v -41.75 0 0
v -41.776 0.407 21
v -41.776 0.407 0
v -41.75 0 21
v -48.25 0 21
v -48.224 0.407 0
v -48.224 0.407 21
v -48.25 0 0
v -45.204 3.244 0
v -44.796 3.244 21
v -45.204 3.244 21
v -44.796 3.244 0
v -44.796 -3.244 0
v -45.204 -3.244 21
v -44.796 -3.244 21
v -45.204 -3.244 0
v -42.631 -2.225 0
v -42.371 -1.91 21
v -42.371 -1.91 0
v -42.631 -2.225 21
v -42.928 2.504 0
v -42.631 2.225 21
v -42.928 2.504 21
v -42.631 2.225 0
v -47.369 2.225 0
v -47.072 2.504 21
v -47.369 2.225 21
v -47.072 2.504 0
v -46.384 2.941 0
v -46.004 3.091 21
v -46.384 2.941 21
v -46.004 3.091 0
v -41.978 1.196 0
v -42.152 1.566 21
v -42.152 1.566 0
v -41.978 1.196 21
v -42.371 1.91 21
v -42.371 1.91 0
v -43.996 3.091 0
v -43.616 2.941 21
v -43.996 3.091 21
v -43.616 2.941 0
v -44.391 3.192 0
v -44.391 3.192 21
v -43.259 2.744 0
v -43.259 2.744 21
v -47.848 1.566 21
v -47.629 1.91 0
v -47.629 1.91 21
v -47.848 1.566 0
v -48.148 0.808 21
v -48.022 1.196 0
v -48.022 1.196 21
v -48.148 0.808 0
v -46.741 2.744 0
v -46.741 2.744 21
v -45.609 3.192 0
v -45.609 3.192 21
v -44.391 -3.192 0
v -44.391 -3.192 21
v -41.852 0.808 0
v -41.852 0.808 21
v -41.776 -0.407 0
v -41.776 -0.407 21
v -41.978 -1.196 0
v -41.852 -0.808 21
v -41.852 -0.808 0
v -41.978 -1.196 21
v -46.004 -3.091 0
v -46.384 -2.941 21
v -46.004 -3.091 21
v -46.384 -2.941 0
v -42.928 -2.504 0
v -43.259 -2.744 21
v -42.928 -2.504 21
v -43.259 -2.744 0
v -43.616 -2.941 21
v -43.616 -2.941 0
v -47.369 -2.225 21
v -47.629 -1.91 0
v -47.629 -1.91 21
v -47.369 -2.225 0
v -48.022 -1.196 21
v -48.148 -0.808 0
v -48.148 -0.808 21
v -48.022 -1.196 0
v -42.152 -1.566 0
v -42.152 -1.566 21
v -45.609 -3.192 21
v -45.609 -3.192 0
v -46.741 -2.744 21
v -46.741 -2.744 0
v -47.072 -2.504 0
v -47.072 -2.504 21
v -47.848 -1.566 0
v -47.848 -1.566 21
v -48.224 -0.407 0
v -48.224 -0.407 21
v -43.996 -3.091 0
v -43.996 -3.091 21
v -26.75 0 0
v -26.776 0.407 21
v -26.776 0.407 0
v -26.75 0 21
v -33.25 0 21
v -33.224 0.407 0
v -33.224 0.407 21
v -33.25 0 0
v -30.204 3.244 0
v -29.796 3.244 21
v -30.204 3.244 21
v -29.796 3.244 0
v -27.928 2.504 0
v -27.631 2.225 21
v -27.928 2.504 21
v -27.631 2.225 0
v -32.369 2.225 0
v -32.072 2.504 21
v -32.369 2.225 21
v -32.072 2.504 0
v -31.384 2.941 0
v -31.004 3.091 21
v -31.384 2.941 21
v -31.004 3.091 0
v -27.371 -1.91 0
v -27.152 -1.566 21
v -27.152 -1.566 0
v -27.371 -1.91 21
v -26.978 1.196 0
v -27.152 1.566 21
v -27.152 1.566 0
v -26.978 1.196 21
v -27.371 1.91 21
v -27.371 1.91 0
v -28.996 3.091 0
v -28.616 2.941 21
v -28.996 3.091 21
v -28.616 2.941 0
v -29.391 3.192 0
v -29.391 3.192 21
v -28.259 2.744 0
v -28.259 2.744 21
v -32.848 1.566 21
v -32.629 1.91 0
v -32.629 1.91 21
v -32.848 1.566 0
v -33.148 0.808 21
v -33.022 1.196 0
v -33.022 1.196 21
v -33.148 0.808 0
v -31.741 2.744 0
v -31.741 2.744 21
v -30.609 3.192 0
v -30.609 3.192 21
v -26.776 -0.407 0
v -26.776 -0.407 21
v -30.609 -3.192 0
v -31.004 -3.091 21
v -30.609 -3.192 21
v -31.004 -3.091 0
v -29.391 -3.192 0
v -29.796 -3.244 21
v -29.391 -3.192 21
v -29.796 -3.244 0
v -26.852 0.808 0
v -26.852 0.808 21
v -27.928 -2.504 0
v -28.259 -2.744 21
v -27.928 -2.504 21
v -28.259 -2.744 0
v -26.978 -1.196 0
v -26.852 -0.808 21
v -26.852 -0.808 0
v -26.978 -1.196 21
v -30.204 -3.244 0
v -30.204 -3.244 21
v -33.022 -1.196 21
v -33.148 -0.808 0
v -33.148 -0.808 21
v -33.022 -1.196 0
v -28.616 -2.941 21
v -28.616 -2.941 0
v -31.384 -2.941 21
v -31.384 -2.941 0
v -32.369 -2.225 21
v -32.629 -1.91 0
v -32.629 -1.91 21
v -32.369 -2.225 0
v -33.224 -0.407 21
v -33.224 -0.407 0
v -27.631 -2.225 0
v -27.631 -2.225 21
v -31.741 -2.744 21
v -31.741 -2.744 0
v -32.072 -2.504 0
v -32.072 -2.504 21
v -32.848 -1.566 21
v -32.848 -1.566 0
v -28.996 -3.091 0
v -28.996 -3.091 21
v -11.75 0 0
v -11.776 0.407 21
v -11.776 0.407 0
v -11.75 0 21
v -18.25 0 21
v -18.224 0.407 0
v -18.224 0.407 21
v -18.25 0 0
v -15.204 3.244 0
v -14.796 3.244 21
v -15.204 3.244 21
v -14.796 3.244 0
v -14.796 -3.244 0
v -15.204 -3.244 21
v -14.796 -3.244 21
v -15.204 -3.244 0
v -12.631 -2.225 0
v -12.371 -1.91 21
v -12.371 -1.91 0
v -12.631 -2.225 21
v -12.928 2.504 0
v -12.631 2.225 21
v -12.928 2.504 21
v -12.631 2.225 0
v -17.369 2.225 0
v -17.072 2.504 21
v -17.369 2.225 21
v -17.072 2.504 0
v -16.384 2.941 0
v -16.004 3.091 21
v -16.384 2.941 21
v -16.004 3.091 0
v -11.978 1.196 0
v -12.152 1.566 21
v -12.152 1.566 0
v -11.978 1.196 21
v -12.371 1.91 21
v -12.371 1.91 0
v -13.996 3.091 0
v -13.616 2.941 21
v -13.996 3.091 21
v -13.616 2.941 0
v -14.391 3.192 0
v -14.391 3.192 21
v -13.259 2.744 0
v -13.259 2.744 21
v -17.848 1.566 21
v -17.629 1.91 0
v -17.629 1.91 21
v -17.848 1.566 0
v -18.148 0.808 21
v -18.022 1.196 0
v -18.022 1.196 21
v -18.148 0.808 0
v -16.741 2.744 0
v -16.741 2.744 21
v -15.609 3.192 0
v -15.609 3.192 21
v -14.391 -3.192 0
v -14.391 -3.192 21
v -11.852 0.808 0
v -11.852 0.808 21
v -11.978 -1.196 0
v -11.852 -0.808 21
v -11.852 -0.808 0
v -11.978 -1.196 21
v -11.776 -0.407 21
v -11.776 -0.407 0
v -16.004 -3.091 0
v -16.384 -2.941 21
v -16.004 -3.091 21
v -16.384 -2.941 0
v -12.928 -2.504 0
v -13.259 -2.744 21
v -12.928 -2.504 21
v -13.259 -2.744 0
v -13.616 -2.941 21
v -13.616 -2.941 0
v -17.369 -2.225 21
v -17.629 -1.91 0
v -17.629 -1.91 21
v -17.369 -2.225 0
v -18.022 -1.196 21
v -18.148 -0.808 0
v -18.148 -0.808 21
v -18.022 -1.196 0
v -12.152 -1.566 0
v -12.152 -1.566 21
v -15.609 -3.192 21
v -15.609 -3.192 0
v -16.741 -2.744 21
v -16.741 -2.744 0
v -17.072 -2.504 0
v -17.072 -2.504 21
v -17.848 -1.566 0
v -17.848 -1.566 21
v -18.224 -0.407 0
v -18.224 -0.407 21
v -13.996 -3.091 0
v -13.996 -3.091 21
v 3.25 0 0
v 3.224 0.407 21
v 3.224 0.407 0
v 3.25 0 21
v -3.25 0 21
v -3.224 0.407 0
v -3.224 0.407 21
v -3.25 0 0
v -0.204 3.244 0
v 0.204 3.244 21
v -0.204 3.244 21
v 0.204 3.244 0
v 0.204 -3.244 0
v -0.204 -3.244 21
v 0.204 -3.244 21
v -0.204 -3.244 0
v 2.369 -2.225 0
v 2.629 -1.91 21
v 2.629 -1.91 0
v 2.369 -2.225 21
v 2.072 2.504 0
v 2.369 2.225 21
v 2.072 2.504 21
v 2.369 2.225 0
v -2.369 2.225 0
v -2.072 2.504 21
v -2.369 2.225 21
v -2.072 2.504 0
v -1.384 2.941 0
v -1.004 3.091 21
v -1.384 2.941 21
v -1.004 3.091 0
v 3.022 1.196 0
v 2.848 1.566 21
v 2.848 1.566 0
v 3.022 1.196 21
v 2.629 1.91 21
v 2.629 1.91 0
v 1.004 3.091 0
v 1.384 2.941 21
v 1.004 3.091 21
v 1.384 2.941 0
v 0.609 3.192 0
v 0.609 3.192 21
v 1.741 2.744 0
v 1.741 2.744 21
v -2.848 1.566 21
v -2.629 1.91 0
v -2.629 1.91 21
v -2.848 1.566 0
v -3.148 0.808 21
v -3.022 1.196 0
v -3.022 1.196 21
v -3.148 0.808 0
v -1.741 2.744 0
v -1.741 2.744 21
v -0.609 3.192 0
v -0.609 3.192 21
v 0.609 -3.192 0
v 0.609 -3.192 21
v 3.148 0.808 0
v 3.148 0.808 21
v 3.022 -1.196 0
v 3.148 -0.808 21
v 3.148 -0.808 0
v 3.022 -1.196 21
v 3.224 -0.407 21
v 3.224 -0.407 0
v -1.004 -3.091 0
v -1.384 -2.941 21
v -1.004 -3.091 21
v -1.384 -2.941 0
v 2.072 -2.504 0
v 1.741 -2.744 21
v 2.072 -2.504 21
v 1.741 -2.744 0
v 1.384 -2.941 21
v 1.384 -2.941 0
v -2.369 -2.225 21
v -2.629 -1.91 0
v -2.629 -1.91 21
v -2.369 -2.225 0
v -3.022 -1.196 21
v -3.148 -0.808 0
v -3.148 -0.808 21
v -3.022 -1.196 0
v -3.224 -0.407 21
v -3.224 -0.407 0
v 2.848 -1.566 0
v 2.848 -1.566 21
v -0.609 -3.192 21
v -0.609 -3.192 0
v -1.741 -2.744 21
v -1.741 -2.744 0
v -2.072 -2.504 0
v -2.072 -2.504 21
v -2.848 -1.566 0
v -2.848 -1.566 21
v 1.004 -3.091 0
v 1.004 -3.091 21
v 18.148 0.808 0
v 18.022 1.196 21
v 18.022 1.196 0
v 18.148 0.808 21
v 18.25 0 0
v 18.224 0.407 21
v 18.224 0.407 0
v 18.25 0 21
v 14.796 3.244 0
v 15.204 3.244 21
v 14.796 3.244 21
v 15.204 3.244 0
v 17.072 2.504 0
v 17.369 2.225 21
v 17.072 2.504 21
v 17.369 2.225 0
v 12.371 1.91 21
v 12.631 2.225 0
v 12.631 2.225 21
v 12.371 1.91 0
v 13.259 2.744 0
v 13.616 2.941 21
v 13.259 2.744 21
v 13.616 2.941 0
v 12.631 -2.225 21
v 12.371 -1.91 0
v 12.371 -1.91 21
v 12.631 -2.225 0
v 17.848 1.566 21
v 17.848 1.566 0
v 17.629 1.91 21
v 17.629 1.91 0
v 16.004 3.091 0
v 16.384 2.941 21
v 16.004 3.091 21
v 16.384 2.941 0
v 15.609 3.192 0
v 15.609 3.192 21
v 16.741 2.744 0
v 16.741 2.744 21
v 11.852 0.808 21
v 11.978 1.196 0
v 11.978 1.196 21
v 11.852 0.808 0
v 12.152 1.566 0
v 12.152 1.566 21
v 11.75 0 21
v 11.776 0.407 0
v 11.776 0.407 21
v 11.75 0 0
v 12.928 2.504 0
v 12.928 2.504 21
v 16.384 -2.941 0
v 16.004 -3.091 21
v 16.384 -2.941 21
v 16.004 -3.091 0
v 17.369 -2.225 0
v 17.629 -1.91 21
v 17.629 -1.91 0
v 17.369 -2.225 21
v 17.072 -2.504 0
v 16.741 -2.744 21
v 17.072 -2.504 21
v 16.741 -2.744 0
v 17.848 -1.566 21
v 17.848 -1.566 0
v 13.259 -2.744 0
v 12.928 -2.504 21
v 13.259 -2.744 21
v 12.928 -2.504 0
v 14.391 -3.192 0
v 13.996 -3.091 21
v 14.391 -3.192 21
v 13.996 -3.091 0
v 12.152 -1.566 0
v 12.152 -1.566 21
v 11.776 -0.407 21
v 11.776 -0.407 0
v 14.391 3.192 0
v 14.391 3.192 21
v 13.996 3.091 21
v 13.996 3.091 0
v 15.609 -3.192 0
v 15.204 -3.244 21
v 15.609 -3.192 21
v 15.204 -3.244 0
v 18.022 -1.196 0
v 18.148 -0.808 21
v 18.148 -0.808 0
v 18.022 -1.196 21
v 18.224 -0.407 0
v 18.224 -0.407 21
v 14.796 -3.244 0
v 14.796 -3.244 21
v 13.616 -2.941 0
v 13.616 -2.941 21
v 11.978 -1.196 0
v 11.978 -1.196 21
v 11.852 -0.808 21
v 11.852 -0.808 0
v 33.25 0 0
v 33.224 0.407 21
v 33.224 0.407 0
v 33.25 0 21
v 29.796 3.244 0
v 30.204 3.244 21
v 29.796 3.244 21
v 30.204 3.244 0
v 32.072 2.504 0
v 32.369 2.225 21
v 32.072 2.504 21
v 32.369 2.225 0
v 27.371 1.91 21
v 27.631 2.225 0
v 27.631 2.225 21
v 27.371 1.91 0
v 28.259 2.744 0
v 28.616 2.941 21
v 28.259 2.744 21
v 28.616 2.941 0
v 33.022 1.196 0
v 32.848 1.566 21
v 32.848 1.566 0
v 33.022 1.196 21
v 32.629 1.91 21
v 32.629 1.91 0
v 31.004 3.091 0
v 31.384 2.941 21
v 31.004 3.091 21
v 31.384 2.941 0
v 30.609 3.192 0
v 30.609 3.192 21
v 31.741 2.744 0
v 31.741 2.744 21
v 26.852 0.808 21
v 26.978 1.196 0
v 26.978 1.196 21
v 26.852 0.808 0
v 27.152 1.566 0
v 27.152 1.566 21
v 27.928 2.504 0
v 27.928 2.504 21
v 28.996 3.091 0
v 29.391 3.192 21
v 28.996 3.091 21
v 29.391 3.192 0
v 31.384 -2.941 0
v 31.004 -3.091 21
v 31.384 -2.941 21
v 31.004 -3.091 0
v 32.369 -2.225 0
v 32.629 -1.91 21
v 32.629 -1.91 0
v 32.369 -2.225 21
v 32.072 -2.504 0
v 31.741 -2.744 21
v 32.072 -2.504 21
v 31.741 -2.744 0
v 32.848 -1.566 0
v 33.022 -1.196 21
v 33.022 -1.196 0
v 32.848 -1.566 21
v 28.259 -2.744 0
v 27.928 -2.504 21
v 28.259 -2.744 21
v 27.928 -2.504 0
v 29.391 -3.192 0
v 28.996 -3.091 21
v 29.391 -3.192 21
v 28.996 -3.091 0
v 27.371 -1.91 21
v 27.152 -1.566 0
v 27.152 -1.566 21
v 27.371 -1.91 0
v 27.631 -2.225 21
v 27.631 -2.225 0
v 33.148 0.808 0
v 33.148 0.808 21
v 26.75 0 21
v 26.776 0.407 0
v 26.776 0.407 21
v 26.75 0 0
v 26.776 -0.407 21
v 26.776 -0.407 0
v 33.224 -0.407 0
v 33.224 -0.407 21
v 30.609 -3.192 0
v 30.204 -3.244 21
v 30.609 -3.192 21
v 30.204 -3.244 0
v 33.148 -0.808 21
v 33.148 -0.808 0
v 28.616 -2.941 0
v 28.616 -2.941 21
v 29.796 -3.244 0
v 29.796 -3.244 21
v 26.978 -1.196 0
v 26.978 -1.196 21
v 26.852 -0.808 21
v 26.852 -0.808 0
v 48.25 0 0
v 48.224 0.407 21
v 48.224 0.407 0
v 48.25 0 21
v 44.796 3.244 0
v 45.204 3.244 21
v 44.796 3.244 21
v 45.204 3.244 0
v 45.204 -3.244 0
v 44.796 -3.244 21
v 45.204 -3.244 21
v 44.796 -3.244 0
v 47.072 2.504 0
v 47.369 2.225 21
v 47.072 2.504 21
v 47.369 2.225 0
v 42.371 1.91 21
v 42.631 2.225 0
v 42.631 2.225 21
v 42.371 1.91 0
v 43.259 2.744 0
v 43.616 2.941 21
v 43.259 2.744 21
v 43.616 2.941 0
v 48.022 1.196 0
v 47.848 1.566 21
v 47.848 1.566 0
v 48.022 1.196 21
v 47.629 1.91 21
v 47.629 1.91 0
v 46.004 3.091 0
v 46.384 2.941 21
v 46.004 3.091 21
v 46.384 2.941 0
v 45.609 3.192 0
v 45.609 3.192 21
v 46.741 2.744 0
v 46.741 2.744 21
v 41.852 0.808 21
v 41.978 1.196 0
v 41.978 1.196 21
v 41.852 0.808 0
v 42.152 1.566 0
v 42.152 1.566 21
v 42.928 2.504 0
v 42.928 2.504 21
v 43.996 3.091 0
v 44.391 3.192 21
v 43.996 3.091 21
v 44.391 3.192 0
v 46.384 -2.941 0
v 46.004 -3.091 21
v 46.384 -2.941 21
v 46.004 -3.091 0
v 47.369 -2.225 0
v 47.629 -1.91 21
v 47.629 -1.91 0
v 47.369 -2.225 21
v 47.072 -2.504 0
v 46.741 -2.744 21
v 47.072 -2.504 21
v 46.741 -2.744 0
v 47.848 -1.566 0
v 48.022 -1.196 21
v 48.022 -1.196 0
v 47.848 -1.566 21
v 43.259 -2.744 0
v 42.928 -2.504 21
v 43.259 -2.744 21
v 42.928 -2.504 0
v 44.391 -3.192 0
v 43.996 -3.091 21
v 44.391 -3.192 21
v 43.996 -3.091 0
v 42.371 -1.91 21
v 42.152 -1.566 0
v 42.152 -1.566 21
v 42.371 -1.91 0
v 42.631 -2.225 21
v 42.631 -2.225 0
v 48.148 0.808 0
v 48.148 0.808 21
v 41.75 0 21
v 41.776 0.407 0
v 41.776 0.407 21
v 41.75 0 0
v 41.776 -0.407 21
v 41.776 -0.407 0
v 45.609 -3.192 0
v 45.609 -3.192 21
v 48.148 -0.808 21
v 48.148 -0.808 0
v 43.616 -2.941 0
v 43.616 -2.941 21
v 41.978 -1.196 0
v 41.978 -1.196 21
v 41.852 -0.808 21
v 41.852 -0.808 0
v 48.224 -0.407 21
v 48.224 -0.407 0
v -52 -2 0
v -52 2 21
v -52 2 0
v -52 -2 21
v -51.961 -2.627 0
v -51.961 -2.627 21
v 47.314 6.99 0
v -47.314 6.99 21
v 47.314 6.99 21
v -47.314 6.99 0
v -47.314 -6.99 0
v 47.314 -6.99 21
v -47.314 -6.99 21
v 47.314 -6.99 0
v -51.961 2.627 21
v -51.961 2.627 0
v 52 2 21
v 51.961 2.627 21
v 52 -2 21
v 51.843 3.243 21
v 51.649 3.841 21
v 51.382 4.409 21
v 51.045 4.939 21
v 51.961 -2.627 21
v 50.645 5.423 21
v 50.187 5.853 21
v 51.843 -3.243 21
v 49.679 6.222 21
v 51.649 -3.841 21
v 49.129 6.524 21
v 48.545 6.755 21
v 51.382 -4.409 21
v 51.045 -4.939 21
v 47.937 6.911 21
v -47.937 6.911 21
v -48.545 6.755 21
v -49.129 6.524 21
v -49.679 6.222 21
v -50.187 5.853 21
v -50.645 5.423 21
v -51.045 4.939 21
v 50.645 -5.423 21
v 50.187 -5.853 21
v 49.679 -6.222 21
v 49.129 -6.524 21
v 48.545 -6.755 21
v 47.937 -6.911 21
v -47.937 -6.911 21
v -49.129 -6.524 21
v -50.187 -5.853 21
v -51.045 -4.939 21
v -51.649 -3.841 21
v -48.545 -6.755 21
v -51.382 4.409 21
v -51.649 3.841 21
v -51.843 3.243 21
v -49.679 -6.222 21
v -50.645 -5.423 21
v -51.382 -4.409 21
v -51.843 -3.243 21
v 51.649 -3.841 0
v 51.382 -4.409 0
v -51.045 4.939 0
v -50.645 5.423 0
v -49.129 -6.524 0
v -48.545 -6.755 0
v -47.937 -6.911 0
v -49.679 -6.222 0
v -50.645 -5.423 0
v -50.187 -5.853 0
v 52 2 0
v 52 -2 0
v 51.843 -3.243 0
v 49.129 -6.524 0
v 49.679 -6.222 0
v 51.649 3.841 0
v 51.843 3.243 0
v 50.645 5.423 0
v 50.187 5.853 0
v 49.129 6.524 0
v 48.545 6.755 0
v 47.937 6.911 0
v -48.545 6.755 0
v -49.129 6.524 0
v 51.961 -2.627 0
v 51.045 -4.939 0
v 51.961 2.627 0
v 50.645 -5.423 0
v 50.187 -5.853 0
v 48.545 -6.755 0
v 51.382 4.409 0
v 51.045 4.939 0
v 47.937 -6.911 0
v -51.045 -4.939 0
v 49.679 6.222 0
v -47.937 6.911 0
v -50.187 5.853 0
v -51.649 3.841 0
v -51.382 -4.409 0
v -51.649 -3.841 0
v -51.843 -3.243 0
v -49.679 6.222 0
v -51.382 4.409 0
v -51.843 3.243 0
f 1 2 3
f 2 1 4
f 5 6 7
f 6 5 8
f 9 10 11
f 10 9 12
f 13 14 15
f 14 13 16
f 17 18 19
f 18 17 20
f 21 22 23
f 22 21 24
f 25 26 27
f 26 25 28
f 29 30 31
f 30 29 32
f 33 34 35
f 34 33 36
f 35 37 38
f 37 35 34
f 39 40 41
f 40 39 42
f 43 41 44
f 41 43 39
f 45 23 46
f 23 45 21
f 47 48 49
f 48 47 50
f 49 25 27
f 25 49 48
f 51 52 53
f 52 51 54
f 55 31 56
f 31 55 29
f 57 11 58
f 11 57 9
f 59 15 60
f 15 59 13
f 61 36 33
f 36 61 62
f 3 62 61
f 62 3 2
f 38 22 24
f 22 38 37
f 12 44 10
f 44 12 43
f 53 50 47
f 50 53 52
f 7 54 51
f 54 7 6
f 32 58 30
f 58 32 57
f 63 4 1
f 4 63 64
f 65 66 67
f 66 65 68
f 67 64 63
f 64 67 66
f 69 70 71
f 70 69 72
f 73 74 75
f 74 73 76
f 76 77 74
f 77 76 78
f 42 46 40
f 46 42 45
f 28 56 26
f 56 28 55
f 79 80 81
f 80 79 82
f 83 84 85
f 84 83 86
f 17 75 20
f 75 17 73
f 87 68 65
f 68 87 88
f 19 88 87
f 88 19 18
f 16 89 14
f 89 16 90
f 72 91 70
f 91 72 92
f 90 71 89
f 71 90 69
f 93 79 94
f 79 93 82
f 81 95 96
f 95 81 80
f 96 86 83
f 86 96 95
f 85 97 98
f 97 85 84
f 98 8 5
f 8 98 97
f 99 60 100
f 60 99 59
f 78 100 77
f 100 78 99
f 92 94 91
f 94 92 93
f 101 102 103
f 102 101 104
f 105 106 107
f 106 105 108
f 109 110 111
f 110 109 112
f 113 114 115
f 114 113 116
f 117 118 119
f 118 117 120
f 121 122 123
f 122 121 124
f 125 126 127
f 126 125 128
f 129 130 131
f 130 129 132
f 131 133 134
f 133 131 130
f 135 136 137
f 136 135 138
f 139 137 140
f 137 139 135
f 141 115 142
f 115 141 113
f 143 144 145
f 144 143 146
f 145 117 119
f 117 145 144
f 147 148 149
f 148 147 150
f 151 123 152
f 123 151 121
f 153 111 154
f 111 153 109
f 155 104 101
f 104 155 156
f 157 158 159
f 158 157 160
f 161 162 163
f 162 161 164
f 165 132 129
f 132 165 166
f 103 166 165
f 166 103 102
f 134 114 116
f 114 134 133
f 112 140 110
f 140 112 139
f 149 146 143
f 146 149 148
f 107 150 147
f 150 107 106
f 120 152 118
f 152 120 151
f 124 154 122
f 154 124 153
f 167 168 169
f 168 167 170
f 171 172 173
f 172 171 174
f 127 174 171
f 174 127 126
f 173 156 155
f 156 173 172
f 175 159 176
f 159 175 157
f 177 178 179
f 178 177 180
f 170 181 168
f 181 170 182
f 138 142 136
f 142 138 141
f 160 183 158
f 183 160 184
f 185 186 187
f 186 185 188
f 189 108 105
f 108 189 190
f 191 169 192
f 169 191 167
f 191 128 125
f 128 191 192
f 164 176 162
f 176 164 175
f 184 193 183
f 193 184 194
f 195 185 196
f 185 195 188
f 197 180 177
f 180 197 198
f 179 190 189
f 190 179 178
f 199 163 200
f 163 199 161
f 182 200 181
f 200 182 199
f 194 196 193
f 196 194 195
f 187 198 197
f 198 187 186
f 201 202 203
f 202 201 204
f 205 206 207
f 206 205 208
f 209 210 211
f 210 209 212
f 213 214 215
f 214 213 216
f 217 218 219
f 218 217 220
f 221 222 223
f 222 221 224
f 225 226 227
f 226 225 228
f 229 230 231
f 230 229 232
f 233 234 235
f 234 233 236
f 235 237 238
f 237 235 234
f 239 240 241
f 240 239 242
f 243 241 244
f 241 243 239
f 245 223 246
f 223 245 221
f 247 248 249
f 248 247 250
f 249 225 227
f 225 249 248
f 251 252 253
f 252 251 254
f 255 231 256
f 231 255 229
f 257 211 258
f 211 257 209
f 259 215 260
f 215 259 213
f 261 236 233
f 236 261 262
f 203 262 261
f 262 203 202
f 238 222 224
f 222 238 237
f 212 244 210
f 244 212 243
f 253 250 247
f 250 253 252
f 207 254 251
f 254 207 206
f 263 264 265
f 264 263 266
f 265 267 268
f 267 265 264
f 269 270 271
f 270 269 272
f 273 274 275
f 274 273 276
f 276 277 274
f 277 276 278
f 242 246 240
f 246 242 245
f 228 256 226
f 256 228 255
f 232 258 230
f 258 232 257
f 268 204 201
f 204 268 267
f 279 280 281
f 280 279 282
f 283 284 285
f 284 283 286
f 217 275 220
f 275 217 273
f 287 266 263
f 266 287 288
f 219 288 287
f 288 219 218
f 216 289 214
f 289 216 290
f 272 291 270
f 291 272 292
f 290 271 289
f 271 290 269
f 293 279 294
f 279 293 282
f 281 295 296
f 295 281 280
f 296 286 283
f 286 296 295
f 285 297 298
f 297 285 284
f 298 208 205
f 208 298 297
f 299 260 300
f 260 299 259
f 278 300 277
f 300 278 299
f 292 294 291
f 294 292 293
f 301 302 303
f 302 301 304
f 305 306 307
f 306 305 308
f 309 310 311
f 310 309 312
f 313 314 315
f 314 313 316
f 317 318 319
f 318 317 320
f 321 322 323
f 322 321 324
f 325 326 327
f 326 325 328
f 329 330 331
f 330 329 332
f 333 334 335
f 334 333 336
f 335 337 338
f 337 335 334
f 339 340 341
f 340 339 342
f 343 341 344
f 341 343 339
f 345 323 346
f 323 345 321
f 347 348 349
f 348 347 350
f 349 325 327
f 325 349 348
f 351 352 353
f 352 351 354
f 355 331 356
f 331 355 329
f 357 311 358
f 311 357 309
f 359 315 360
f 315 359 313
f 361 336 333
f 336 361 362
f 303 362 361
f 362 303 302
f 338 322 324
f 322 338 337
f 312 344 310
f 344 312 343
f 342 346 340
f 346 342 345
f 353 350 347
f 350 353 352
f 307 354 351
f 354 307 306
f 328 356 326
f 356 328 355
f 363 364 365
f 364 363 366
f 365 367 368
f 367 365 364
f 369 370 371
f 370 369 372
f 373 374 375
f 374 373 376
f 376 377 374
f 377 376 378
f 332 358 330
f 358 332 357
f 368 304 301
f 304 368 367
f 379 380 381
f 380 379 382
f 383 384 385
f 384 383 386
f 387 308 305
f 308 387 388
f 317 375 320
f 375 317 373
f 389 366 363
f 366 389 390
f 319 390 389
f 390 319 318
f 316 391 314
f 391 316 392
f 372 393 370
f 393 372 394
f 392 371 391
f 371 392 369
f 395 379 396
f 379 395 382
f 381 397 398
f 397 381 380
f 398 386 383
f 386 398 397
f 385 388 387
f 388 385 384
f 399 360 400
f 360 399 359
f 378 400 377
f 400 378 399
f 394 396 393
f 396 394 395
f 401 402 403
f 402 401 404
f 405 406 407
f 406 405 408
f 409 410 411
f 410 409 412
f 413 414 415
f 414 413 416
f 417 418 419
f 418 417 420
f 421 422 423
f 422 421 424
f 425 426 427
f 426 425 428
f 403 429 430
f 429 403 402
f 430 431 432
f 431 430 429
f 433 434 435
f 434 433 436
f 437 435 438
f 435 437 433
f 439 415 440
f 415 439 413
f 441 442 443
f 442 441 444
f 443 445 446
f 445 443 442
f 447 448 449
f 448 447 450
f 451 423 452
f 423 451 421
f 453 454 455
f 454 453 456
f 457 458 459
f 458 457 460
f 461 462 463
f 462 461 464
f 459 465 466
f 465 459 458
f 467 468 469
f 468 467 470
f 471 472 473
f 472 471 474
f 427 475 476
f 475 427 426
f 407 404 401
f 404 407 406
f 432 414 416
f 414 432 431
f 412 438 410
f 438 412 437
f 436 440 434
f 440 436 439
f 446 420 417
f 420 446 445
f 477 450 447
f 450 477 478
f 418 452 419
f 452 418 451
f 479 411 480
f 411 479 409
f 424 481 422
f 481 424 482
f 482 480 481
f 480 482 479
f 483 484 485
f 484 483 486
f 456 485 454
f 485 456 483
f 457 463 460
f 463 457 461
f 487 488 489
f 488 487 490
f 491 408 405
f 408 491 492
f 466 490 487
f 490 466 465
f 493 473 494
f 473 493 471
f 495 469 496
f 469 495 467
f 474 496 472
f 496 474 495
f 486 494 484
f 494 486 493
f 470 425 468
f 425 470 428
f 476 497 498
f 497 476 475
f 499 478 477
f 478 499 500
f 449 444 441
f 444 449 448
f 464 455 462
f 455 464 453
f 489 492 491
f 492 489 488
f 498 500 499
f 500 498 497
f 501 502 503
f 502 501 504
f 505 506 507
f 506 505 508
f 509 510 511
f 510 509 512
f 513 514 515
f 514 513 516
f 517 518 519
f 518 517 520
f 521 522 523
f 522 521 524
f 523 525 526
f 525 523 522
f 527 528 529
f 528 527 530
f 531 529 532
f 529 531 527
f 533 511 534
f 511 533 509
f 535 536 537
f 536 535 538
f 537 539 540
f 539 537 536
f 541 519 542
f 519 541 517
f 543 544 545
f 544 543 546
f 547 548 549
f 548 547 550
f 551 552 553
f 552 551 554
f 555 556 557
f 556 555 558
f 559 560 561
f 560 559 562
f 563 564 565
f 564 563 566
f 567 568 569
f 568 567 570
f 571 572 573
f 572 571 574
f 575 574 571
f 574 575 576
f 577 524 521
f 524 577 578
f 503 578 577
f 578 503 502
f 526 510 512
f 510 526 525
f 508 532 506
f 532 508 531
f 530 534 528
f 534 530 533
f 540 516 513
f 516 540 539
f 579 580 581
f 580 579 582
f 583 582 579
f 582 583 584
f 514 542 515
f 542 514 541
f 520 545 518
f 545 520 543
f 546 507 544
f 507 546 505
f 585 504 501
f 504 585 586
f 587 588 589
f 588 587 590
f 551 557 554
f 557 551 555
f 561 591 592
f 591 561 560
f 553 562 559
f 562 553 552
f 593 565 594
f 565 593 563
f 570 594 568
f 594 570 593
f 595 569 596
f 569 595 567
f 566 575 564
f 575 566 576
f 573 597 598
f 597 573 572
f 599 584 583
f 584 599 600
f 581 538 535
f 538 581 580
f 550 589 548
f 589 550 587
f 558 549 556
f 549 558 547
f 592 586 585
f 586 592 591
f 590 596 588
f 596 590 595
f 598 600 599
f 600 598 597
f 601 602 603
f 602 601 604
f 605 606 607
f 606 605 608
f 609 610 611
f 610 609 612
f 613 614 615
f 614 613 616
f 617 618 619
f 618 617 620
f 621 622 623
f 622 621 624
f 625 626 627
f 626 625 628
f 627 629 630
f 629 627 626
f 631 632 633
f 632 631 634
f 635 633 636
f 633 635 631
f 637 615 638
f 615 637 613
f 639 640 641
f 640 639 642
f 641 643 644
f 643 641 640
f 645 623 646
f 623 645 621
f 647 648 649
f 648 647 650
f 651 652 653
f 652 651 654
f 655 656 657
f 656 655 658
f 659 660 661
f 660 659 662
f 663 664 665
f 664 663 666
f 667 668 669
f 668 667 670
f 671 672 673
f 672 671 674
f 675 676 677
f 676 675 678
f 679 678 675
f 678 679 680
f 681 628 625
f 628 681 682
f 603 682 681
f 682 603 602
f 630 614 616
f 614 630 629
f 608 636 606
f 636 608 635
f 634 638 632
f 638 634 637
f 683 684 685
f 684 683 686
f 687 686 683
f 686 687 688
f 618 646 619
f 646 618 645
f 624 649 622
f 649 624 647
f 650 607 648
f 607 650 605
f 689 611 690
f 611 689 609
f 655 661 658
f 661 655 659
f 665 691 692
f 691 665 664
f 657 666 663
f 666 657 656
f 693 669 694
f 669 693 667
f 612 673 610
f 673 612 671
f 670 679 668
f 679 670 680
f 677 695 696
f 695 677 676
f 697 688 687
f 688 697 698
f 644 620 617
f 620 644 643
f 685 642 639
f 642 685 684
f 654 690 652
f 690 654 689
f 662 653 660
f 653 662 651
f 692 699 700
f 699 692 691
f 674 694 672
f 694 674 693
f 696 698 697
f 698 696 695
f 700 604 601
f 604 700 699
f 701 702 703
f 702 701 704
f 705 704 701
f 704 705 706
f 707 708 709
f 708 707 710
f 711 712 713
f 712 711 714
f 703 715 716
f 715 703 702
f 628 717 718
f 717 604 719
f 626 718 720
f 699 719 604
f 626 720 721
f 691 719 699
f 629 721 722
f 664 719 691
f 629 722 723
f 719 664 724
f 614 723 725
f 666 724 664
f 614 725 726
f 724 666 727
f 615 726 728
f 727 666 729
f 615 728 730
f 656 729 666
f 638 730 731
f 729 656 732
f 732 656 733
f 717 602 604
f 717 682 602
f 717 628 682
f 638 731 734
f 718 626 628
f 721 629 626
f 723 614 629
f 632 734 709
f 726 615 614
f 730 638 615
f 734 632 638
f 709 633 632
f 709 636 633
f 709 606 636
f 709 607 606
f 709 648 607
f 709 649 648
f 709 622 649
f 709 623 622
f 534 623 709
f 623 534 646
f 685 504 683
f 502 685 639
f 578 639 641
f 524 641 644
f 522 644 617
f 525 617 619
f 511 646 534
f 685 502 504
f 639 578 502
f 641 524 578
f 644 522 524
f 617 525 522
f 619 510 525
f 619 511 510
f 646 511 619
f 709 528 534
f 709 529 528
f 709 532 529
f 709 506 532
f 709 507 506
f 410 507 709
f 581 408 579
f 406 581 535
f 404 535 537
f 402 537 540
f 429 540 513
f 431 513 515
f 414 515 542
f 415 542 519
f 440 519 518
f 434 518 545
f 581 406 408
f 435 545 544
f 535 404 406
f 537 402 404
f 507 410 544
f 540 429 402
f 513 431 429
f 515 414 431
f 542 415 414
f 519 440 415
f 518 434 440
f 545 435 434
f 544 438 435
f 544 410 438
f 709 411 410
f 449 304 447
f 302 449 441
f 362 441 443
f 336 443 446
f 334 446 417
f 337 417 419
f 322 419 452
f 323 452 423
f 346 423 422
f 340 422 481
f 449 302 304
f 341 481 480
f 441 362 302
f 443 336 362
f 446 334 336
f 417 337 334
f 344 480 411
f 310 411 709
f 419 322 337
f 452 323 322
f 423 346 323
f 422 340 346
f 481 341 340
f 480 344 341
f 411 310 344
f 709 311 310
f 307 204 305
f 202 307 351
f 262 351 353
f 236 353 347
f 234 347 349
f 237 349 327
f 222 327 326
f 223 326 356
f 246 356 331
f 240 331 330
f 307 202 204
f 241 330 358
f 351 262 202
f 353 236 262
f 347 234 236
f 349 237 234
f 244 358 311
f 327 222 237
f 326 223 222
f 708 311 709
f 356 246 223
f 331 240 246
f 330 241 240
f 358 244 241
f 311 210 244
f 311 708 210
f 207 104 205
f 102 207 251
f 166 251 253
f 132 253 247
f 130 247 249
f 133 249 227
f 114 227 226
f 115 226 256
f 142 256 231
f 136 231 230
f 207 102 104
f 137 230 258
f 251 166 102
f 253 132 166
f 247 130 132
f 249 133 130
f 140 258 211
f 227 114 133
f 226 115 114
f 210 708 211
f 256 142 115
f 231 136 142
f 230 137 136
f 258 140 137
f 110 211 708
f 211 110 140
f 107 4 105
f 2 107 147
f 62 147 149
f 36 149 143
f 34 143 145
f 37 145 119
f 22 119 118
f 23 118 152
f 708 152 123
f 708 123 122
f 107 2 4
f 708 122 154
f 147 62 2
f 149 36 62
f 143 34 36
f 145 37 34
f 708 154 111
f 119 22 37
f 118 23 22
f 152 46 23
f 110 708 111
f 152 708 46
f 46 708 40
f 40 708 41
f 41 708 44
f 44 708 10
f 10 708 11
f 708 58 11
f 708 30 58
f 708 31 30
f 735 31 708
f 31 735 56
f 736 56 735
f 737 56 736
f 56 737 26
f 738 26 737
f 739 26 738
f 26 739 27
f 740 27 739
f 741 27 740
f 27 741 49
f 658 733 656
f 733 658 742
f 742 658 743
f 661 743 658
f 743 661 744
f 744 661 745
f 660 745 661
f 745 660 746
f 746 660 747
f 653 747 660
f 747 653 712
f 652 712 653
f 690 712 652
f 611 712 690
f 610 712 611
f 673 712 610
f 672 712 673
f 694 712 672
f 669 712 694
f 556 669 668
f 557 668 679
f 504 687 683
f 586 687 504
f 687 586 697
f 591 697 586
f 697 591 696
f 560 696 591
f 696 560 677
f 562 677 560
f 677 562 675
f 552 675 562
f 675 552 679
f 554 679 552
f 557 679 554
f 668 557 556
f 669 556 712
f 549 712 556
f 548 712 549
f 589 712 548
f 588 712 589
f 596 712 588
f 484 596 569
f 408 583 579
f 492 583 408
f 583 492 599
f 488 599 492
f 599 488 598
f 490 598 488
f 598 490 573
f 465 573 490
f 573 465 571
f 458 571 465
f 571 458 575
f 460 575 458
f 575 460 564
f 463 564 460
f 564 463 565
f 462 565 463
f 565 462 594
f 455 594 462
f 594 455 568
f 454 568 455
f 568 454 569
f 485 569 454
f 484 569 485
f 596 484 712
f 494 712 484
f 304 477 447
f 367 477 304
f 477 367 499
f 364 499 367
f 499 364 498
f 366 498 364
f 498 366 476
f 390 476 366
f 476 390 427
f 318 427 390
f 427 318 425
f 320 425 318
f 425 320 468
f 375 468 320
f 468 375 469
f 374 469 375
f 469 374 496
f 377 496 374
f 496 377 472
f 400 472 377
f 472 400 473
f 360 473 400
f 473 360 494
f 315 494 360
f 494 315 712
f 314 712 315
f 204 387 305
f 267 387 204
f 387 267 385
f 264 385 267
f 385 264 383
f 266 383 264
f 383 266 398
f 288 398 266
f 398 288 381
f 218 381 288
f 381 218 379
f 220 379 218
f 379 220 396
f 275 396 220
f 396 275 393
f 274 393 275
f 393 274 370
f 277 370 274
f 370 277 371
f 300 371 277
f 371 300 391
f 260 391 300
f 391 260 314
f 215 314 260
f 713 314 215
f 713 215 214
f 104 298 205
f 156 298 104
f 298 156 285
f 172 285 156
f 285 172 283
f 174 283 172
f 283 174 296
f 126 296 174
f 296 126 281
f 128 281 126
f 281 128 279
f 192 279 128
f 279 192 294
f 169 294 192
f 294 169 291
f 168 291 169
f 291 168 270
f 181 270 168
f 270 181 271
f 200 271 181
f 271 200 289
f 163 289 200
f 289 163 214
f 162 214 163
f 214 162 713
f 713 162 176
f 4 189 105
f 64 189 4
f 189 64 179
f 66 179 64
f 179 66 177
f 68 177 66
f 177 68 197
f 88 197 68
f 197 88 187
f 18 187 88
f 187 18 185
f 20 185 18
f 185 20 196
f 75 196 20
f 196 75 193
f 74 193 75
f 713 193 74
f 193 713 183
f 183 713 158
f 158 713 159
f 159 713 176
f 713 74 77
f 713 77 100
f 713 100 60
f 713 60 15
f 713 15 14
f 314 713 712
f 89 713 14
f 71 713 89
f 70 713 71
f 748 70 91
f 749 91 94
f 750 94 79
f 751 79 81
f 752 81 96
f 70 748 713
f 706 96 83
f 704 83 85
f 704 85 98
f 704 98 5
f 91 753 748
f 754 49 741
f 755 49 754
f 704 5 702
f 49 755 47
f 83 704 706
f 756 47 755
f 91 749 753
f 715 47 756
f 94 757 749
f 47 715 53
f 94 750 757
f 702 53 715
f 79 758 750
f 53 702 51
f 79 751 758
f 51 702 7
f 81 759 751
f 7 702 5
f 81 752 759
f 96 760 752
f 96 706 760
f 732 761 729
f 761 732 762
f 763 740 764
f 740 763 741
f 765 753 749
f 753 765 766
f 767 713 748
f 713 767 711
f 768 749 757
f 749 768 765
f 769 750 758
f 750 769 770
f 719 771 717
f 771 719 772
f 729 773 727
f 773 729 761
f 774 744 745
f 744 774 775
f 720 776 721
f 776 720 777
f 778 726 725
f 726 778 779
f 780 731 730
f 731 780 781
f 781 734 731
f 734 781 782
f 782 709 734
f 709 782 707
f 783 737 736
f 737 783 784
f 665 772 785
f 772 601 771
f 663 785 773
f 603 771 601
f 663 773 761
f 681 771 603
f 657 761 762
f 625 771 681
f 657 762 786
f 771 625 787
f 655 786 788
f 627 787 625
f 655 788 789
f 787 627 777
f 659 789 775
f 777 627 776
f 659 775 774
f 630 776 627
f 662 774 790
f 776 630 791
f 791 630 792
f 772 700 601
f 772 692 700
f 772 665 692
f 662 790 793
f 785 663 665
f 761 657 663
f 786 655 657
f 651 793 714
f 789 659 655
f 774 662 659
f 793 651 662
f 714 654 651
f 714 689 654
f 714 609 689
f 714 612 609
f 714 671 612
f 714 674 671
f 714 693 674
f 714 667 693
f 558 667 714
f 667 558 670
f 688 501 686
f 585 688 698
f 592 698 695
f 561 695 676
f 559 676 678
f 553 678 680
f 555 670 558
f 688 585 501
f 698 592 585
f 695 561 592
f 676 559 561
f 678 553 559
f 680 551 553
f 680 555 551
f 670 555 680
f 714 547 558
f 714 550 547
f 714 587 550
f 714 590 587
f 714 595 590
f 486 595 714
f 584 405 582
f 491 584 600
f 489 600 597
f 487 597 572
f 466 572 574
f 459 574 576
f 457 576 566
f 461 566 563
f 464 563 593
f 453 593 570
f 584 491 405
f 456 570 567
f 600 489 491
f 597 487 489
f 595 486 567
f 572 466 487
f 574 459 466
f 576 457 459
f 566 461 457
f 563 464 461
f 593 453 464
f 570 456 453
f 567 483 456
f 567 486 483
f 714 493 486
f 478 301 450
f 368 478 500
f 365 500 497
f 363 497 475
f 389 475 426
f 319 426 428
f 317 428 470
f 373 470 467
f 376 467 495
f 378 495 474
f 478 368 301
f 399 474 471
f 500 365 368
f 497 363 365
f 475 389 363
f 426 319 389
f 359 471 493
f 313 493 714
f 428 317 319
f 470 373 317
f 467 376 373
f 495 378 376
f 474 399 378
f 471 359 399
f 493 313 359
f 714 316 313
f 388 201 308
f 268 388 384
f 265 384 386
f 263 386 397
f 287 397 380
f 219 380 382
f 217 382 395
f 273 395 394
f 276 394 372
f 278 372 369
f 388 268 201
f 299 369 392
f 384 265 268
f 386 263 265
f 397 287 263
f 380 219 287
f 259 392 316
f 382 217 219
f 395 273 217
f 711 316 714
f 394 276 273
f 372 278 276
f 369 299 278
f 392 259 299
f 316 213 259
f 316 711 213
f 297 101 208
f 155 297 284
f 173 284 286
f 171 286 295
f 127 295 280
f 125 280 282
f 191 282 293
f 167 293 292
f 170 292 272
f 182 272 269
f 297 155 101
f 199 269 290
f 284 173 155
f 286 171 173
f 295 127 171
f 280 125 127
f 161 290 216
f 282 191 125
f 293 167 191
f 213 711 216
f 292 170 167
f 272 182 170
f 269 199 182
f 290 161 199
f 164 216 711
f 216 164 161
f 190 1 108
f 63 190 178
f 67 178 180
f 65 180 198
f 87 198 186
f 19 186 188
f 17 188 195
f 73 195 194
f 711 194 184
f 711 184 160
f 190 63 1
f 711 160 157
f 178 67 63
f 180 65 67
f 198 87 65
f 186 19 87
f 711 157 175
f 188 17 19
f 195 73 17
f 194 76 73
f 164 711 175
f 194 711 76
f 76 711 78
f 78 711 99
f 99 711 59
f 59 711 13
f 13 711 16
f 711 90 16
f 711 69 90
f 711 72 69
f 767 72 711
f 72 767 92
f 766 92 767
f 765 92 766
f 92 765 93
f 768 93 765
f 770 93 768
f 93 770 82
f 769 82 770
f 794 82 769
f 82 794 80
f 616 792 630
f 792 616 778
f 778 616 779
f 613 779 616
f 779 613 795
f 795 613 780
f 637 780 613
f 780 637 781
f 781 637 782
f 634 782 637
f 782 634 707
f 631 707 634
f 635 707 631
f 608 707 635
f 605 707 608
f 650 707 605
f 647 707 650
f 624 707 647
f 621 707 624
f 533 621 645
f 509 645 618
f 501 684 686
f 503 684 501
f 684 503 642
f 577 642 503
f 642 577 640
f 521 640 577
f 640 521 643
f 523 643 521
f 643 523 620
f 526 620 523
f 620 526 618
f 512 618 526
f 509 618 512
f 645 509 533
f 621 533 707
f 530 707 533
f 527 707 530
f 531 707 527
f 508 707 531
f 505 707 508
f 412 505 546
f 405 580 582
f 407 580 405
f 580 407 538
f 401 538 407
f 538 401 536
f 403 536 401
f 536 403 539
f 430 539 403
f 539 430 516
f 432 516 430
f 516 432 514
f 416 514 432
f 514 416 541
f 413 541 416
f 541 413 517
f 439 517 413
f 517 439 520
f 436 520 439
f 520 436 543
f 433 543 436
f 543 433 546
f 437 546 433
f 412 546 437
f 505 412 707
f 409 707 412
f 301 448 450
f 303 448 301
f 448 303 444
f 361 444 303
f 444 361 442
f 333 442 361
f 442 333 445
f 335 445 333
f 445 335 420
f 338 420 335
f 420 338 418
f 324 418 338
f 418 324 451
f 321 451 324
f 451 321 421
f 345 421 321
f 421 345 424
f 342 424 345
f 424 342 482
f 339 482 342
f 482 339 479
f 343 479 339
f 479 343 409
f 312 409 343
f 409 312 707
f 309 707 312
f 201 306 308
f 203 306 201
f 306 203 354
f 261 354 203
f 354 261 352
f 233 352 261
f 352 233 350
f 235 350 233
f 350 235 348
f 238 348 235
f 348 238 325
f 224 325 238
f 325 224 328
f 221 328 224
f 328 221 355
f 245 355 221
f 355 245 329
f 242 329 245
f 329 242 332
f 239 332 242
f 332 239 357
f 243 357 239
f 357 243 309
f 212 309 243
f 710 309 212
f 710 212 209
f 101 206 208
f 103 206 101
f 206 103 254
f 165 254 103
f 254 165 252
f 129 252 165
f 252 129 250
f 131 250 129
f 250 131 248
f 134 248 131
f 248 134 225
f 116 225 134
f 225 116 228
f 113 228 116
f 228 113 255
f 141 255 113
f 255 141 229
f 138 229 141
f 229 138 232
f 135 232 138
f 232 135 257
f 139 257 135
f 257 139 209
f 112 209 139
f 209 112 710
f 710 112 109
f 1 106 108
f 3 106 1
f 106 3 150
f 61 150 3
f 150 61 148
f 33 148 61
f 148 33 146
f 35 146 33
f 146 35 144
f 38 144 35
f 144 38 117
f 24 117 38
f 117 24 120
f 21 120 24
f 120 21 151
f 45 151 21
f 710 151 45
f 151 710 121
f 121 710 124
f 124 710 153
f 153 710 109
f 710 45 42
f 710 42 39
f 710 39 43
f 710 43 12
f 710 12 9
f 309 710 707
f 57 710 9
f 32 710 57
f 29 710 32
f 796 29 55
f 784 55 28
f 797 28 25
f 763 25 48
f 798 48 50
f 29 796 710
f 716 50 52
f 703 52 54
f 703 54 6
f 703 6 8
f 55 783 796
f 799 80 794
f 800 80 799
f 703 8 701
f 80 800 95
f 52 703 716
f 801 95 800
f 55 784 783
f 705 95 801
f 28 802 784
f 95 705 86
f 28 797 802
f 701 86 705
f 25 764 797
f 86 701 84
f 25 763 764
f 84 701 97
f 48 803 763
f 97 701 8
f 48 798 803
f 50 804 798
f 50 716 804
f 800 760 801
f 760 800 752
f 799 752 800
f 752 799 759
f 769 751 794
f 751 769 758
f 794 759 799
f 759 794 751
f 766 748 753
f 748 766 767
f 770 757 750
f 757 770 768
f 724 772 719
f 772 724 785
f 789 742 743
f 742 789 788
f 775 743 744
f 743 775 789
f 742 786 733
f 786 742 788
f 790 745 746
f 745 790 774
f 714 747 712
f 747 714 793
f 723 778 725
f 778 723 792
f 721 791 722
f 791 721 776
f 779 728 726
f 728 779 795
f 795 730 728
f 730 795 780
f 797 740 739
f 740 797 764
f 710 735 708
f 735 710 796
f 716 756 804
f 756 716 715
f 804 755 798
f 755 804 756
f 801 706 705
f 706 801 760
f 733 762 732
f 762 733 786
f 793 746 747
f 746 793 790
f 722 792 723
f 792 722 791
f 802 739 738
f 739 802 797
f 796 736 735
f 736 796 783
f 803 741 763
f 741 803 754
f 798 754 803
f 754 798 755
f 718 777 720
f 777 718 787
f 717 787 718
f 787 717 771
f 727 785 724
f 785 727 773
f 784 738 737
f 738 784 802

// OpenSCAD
$fn = 50;


difference() {
	union() {
		hull() {
			translate(v = [-47.0000000000, 2.0000000000, 0]) {
				cylinder(h = 21, r = 5);
			}
			translate(v = [47.0000000000, 2.0000000000, 0]) {
				cylinder(h = 21, r = 5);
			}
			translate(v = [-47.0000000000, -2.0000000000, 0]) {
				cylinder(h = 21, r = 5);
			}
			translate(v = [47.0000000000, -2.0000000000, 0]) {
				cylinder(h = 21, r = 5);
			}
		}
	}
	union() {
		translate(v = [-45.0000000000, 0.0000000000, -100.0000000000]) {
			cylinder(h = 200, r = 3.2500000000);
		}
		translate(v = [-30.0000000000, 0.0000000000, -100.0000000000]) {
			cylinder(h = 200, r = 3.2500000000);
		}
		translate(v = [-15.0000000000, 0.0000000000, -100.0000000000]) {
			cylinder(h = 200, r = 3.2500000000);
		}
		translate(v = [0.0000000000, 0.0000000000, -100.0000000000]) {
			cylinder(h = 200, r = 3.2500000000);
		}
		translate(v = [15.0000000000, 0.0000000000, -100.0000000000]) {
			cylinder(h = 200, r = 3.2500000000);
		}
		translate(v = [30.0000000000, 0.0000000000, -100.0000000000]) {
			cylinder(h = 200, r = 3.2500000000);
		}
		translate(v = [45.0000000000, 0.0000000000, -100.0000000000]) {
			cylinder(h = 200, r = 3.2500000000);
		}
	}
}
